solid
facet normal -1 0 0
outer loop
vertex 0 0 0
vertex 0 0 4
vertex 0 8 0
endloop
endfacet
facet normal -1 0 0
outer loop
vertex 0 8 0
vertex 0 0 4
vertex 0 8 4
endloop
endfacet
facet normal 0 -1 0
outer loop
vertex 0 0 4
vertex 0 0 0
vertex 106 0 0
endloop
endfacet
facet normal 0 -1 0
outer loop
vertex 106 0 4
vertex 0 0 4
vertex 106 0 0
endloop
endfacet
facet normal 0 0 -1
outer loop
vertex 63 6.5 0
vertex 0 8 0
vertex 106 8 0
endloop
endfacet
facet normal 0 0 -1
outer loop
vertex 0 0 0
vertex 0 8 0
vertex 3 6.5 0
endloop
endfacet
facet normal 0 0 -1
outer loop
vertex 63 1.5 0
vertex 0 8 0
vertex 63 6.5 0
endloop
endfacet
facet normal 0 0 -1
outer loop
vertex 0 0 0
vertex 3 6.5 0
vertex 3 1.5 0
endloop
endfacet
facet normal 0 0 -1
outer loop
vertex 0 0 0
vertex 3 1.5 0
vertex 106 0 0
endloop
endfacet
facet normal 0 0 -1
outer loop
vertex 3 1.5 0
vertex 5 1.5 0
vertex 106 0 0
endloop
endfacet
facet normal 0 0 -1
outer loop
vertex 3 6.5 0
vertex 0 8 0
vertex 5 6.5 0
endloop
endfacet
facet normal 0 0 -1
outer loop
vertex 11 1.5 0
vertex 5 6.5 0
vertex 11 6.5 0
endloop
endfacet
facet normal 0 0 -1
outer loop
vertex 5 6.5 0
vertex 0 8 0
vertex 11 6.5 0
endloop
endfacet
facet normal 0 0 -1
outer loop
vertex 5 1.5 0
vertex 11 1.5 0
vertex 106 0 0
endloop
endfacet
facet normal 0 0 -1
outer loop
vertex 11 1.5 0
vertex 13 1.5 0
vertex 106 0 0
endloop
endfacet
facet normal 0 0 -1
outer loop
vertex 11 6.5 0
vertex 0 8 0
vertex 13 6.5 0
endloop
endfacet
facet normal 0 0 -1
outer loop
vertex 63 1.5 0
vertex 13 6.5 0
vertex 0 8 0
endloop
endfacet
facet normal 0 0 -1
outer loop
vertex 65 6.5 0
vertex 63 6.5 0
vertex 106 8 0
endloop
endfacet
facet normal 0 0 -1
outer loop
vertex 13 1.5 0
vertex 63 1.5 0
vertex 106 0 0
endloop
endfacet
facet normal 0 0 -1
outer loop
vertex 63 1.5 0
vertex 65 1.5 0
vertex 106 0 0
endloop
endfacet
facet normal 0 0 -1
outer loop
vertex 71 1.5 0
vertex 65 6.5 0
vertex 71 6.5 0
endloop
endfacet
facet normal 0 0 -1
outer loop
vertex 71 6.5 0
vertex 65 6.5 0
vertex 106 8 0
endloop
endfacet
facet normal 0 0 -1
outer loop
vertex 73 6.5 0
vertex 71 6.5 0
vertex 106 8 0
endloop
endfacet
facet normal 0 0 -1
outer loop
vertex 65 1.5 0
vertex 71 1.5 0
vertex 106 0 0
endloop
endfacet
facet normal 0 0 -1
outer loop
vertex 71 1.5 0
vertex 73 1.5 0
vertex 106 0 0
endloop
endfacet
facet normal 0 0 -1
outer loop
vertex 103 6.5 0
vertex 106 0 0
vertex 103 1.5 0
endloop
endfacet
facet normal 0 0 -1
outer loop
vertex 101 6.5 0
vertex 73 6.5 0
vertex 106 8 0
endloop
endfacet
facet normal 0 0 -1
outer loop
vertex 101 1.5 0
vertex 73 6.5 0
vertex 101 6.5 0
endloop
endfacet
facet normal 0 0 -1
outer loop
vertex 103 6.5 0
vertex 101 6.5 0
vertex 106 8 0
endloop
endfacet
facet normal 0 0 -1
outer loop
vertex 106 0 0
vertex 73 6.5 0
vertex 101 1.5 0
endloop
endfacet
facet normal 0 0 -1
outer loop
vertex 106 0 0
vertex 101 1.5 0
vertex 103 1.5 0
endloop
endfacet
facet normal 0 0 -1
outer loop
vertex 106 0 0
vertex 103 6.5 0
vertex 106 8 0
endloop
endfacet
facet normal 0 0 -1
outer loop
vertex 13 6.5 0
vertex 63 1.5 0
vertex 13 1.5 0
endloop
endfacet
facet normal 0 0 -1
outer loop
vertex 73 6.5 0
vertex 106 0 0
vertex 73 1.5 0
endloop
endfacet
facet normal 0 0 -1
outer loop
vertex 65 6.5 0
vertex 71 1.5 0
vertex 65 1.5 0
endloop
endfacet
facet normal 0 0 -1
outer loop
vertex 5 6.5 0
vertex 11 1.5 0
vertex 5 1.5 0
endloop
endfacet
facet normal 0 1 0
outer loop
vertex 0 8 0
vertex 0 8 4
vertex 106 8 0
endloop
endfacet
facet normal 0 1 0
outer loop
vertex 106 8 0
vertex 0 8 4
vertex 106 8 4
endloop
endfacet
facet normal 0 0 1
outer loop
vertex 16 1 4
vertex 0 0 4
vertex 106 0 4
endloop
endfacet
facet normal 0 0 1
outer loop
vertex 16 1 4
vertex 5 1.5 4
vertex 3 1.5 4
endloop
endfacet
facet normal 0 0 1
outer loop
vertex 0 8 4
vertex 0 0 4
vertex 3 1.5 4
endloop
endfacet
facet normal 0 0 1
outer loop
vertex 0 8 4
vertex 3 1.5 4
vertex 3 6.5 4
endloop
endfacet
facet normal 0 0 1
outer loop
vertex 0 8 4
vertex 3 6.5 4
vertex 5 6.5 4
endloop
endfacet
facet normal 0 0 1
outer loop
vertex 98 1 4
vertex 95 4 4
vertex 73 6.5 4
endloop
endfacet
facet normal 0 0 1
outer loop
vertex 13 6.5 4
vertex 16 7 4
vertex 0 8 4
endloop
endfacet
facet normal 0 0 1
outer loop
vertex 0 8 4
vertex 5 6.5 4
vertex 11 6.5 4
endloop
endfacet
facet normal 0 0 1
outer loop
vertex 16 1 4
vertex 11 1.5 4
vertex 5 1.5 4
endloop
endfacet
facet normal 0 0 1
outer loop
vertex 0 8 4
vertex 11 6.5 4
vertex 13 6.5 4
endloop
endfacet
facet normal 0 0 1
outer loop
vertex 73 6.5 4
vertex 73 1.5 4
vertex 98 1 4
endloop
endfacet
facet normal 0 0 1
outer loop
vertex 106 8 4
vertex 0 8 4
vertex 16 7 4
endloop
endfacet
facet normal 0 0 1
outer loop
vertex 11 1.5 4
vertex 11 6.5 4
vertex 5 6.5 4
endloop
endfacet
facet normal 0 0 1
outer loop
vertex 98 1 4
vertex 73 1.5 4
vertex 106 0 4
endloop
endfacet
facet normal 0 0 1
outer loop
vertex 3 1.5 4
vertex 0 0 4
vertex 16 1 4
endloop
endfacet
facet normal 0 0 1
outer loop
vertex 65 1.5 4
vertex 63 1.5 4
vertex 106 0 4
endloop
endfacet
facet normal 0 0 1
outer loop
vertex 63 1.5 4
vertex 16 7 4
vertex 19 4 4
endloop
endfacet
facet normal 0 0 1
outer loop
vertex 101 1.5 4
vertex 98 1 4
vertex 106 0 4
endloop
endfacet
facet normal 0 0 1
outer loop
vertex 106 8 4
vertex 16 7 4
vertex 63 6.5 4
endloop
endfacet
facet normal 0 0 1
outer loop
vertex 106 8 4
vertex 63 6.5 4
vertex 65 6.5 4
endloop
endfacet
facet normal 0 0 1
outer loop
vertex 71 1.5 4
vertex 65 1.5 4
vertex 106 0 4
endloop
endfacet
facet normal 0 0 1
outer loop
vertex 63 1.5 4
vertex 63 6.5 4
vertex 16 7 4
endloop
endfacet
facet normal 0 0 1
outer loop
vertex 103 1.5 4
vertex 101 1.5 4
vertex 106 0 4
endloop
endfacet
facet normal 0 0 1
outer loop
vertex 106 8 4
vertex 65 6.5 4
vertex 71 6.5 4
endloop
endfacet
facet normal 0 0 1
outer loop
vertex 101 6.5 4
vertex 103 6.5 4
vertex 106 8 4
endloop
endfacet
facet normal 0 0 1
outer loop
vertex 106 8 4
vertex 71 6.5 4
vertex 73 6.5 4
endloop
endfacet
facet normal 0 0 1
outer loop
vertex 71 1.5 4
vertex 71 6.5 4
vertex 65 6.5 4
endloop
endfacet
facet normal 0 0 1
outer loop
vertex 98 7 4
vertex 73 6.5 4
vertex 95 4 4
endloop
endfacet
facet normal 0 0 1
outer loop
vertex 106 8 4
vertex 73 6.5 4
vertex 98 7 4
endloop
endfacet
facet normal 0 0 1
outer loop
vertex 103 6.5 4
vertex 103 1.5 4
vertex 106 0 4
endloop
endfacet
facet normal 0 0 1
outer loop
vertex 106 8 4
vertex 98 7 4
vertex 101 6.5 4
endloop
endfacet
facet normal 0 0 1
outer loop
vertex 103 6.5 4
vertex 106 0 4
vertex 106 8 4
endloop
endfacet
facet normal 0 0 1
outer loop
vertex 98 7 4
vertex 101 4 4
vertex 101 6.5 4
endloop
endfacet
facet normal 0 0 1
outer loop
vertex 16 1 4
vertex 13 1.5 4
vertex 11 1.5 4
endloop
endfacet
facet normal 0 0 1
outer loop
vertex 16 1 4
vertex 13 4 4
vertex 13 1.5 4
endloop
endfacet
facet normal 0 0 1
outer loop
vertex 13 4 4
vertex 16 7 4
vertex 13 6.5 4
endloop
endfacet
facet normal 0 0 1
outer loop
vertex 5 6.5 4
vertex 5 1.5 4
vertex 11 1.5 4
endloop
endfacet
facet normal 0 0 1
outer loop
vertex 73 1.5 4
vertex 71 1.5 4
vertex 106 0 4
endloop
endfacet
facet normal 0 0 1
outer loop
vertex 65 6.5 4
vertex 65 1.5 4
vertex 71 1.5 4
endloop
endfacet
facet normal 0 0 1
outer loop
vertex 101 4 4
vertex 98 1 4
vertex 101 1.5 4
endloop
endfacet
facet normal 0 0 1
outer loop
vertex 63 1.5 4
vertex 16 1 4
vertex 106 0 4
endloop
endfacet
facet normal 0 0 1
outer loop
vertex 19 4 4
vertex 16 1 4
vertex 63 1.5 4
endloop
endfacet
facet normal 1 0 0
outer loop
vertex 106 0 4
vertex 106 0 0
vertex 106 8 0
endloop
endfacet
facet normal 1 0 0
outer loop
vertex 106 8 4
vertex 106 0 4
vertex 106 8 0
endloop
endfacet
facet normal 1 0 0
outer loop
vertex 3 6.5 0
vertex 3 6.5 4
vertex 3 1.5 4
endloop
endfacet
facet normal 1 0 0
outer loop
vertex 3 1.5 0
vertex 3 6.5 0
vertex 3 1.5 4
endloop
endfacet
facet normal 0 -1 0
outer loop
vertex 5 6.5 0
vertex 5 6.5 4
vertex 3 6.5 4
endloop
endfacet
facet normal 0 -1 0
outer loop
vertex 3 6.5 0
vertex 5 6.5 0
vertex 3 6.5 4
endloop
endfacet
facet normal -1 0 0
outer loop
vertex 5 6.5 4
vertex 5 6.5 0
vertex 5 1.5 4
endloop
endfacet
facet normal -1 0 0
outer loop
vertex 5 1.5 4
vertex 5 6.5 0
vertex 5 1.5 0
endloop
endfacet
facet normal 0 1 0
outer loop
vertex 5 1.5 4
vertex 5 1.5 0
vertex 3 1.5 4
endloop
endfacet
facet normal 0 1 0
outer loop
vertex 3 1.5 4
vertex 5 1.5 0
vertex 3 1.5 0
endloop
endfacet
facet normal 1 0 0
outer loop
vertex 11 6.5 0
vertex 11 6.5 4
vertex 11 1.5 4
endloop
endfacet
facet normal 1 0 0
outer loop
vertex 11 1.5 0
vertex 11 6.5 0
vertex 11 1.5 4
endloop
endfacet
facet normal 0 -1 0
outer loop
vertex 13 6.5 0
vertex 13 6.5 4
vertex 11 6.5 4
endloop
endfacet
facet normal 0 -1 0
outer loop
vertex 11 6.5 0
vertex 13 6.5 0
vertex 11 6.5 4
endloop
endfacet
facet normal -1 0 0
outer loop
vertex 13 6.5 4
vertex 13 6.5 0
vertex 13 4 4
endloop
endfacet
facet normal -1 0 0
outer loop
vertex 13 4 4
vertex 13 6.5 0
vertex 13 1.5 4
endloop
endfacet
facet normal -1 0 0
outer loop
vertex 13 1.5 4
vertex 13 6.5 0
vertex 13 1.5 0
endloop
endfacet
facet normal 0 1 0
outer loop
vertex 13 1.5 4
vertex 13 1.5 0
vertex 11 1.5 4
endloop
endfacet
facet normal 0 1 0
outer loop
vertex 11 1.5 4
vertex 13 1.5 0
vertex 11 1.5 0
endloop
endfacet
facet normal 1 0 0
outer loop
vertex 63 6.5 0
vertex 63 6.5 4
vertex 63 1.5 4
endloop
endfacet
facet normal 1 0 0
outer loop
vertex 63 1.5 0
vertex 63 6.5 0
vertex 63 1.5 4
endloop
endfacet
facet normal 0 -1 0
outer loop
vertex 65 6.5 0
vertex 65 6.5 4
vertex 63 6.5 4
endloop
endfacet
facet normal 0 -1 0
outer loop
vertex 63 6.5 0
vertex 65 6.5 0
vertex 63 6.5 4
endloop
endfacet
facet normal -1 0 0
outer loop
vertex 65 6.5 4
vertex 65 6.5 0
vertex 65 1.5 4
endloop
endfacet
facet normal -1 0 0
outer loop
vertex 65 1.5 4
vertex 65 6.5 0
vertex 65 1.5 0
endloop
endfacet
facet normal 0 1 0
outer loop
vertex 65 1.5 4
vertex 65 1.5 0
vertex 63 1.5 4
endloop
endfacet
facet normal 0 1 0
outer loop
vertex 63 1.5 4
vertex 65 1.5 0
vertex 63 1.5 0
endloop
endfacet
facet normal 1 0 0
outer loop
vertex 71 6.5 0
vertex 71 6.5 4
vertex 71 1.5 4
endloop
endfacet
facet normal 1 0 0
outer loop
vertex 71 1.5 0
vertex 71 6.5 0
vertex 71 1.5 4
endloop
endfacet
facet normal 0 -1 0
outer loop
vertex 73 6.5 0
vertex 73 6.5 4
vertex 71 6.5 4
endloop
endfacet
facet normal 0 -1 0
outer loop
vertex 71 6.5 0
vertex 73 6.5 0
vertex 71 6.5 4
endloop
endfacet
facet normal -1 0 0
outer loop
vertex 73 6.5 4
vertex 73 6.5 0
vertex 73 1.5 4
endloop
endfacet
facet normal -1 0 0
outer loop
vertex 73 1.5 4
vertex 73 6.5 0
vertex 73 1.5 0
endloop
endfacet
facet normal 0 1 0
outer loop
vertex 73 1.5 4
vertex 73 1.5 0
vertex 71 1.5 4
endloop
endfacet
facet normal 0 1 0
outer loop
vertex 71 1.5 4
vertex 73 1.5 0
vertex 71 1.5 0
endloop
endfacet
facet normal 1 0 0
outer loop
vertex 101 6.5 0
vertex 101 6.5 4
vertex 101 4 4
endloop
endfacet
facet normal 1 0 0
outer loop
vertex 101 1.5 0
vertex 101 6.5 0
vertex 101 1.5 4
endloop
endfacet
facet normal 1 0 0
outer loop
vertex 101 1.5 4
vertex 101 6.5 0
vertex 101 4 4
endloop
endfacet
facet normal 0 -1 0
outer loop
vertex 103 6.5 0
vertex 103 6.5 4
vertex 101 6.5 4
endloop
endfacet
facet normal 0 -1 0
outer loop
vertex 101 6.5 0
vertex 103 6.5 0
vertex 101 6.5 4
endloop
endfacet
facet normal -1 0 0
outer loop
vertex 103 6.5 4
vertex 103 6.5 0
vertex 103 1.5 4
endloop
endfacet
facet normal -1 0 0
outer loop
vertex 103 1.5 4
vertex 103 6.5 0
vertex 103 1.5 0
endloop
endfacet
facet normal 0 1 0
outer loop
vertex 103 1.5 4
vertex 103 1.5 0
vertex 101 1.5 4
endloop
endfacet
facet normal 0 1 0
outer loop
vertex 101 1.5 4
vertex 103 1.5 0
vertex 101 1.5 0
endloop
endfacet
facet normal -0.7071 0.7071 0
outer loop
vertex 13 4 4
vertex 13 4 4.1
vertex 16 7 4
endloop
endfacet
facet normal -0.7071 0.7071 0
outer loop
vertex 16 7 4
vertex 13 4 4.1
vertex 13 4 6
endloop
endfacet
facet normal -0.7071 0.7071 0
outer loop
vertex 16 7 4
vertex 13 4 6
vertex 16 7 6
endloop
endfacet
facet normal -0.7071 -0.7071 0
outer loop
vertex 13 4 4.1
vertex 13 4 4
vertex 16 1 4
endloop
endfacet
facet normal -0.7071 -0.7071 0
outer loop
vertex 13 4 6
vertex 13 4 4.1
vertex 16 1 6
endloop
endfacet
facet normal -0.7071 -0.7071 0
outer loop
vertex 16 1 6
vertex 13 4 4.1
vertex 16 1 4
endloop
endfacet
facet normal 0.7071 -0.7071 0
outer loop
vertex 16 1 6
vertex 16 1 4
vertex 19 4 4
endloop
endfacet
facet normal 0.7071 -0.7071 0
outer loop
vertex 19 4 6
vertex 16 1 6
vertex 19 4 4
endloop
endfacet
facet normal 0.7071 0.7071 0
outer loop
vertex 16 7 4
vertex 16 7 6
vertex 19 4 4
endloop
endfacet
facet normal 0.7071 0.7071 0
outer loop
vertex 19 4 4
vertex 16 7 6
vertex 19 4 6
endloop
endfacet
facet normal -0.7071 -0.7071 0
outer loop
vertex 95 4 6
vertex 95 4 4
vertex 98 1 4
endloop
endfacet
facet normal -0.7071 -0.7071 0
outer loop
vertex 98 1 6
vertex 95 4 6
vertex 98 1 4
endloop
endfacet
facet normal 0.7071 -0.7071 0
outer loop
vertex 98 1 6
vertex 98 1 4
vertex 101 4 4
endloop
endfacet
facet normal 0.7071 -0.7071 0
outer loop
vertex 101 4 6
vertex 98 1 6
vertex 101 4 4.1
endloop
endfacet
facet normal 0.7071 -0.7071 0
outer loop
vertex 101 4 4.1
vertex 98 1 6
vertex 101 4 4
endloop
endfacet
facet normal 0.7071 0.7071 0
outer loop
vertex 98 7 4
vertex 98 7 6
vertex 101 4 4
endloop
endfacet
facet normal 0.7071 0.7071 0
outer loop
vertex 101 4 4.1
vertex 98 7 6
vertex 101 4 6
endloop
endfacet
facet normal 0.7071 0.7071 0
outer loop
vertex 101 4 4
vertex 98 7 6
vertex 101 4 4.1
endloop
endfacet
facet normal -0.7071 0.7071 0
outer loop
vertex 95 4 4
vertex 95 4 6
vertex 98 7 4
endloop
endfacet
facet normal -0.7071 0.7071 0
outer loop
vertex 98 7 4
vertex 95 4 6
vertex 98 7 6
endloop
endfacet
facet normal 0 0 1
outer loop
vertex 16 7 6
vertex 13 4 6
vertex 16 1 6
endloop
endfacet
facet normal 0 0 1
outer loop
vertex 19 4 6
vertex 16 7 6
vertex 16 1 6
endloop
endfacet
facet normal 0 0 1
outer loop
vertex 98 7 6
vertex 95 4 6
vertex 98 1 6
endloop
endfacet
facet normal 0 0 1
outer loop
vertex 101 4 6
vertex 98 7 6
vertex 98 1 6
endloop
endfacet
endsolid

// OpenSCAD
width = 8;
height = 4;
tol=0.1;

rod_distance = 60;
hole_distance = 90;

// dimensions of ziptie hole
ziptie_x = 2;
ziptie_y = 5;

difference(){
  union(){
    cube([hole_distance+8+8,width,height]);
    translate([8,0,0]) bump();
    translate([hole_distance,0,0]) bump();
  }

  ziptiehole();
  translate([8,0,0])ziptiehole();

  translate([rod_distance,0,0]) {
    ziptiehole();
    translate([8,0,0])ziptiehole();
  }

  translate([hole_distance+8,0,0]) {
    ziptiehole();
   }

}

module ziptiehole(){
  translate([3,(width-ziptie_y)/2,-tol]) #cube([ziptie_x,ziptie_y,height+2*tol]);
}
module bump(){ 
translate([3+width/2-1+ziptie_x,width/2,height]) cylinder(r=width/2-1,h=2,$fn=4);

}
